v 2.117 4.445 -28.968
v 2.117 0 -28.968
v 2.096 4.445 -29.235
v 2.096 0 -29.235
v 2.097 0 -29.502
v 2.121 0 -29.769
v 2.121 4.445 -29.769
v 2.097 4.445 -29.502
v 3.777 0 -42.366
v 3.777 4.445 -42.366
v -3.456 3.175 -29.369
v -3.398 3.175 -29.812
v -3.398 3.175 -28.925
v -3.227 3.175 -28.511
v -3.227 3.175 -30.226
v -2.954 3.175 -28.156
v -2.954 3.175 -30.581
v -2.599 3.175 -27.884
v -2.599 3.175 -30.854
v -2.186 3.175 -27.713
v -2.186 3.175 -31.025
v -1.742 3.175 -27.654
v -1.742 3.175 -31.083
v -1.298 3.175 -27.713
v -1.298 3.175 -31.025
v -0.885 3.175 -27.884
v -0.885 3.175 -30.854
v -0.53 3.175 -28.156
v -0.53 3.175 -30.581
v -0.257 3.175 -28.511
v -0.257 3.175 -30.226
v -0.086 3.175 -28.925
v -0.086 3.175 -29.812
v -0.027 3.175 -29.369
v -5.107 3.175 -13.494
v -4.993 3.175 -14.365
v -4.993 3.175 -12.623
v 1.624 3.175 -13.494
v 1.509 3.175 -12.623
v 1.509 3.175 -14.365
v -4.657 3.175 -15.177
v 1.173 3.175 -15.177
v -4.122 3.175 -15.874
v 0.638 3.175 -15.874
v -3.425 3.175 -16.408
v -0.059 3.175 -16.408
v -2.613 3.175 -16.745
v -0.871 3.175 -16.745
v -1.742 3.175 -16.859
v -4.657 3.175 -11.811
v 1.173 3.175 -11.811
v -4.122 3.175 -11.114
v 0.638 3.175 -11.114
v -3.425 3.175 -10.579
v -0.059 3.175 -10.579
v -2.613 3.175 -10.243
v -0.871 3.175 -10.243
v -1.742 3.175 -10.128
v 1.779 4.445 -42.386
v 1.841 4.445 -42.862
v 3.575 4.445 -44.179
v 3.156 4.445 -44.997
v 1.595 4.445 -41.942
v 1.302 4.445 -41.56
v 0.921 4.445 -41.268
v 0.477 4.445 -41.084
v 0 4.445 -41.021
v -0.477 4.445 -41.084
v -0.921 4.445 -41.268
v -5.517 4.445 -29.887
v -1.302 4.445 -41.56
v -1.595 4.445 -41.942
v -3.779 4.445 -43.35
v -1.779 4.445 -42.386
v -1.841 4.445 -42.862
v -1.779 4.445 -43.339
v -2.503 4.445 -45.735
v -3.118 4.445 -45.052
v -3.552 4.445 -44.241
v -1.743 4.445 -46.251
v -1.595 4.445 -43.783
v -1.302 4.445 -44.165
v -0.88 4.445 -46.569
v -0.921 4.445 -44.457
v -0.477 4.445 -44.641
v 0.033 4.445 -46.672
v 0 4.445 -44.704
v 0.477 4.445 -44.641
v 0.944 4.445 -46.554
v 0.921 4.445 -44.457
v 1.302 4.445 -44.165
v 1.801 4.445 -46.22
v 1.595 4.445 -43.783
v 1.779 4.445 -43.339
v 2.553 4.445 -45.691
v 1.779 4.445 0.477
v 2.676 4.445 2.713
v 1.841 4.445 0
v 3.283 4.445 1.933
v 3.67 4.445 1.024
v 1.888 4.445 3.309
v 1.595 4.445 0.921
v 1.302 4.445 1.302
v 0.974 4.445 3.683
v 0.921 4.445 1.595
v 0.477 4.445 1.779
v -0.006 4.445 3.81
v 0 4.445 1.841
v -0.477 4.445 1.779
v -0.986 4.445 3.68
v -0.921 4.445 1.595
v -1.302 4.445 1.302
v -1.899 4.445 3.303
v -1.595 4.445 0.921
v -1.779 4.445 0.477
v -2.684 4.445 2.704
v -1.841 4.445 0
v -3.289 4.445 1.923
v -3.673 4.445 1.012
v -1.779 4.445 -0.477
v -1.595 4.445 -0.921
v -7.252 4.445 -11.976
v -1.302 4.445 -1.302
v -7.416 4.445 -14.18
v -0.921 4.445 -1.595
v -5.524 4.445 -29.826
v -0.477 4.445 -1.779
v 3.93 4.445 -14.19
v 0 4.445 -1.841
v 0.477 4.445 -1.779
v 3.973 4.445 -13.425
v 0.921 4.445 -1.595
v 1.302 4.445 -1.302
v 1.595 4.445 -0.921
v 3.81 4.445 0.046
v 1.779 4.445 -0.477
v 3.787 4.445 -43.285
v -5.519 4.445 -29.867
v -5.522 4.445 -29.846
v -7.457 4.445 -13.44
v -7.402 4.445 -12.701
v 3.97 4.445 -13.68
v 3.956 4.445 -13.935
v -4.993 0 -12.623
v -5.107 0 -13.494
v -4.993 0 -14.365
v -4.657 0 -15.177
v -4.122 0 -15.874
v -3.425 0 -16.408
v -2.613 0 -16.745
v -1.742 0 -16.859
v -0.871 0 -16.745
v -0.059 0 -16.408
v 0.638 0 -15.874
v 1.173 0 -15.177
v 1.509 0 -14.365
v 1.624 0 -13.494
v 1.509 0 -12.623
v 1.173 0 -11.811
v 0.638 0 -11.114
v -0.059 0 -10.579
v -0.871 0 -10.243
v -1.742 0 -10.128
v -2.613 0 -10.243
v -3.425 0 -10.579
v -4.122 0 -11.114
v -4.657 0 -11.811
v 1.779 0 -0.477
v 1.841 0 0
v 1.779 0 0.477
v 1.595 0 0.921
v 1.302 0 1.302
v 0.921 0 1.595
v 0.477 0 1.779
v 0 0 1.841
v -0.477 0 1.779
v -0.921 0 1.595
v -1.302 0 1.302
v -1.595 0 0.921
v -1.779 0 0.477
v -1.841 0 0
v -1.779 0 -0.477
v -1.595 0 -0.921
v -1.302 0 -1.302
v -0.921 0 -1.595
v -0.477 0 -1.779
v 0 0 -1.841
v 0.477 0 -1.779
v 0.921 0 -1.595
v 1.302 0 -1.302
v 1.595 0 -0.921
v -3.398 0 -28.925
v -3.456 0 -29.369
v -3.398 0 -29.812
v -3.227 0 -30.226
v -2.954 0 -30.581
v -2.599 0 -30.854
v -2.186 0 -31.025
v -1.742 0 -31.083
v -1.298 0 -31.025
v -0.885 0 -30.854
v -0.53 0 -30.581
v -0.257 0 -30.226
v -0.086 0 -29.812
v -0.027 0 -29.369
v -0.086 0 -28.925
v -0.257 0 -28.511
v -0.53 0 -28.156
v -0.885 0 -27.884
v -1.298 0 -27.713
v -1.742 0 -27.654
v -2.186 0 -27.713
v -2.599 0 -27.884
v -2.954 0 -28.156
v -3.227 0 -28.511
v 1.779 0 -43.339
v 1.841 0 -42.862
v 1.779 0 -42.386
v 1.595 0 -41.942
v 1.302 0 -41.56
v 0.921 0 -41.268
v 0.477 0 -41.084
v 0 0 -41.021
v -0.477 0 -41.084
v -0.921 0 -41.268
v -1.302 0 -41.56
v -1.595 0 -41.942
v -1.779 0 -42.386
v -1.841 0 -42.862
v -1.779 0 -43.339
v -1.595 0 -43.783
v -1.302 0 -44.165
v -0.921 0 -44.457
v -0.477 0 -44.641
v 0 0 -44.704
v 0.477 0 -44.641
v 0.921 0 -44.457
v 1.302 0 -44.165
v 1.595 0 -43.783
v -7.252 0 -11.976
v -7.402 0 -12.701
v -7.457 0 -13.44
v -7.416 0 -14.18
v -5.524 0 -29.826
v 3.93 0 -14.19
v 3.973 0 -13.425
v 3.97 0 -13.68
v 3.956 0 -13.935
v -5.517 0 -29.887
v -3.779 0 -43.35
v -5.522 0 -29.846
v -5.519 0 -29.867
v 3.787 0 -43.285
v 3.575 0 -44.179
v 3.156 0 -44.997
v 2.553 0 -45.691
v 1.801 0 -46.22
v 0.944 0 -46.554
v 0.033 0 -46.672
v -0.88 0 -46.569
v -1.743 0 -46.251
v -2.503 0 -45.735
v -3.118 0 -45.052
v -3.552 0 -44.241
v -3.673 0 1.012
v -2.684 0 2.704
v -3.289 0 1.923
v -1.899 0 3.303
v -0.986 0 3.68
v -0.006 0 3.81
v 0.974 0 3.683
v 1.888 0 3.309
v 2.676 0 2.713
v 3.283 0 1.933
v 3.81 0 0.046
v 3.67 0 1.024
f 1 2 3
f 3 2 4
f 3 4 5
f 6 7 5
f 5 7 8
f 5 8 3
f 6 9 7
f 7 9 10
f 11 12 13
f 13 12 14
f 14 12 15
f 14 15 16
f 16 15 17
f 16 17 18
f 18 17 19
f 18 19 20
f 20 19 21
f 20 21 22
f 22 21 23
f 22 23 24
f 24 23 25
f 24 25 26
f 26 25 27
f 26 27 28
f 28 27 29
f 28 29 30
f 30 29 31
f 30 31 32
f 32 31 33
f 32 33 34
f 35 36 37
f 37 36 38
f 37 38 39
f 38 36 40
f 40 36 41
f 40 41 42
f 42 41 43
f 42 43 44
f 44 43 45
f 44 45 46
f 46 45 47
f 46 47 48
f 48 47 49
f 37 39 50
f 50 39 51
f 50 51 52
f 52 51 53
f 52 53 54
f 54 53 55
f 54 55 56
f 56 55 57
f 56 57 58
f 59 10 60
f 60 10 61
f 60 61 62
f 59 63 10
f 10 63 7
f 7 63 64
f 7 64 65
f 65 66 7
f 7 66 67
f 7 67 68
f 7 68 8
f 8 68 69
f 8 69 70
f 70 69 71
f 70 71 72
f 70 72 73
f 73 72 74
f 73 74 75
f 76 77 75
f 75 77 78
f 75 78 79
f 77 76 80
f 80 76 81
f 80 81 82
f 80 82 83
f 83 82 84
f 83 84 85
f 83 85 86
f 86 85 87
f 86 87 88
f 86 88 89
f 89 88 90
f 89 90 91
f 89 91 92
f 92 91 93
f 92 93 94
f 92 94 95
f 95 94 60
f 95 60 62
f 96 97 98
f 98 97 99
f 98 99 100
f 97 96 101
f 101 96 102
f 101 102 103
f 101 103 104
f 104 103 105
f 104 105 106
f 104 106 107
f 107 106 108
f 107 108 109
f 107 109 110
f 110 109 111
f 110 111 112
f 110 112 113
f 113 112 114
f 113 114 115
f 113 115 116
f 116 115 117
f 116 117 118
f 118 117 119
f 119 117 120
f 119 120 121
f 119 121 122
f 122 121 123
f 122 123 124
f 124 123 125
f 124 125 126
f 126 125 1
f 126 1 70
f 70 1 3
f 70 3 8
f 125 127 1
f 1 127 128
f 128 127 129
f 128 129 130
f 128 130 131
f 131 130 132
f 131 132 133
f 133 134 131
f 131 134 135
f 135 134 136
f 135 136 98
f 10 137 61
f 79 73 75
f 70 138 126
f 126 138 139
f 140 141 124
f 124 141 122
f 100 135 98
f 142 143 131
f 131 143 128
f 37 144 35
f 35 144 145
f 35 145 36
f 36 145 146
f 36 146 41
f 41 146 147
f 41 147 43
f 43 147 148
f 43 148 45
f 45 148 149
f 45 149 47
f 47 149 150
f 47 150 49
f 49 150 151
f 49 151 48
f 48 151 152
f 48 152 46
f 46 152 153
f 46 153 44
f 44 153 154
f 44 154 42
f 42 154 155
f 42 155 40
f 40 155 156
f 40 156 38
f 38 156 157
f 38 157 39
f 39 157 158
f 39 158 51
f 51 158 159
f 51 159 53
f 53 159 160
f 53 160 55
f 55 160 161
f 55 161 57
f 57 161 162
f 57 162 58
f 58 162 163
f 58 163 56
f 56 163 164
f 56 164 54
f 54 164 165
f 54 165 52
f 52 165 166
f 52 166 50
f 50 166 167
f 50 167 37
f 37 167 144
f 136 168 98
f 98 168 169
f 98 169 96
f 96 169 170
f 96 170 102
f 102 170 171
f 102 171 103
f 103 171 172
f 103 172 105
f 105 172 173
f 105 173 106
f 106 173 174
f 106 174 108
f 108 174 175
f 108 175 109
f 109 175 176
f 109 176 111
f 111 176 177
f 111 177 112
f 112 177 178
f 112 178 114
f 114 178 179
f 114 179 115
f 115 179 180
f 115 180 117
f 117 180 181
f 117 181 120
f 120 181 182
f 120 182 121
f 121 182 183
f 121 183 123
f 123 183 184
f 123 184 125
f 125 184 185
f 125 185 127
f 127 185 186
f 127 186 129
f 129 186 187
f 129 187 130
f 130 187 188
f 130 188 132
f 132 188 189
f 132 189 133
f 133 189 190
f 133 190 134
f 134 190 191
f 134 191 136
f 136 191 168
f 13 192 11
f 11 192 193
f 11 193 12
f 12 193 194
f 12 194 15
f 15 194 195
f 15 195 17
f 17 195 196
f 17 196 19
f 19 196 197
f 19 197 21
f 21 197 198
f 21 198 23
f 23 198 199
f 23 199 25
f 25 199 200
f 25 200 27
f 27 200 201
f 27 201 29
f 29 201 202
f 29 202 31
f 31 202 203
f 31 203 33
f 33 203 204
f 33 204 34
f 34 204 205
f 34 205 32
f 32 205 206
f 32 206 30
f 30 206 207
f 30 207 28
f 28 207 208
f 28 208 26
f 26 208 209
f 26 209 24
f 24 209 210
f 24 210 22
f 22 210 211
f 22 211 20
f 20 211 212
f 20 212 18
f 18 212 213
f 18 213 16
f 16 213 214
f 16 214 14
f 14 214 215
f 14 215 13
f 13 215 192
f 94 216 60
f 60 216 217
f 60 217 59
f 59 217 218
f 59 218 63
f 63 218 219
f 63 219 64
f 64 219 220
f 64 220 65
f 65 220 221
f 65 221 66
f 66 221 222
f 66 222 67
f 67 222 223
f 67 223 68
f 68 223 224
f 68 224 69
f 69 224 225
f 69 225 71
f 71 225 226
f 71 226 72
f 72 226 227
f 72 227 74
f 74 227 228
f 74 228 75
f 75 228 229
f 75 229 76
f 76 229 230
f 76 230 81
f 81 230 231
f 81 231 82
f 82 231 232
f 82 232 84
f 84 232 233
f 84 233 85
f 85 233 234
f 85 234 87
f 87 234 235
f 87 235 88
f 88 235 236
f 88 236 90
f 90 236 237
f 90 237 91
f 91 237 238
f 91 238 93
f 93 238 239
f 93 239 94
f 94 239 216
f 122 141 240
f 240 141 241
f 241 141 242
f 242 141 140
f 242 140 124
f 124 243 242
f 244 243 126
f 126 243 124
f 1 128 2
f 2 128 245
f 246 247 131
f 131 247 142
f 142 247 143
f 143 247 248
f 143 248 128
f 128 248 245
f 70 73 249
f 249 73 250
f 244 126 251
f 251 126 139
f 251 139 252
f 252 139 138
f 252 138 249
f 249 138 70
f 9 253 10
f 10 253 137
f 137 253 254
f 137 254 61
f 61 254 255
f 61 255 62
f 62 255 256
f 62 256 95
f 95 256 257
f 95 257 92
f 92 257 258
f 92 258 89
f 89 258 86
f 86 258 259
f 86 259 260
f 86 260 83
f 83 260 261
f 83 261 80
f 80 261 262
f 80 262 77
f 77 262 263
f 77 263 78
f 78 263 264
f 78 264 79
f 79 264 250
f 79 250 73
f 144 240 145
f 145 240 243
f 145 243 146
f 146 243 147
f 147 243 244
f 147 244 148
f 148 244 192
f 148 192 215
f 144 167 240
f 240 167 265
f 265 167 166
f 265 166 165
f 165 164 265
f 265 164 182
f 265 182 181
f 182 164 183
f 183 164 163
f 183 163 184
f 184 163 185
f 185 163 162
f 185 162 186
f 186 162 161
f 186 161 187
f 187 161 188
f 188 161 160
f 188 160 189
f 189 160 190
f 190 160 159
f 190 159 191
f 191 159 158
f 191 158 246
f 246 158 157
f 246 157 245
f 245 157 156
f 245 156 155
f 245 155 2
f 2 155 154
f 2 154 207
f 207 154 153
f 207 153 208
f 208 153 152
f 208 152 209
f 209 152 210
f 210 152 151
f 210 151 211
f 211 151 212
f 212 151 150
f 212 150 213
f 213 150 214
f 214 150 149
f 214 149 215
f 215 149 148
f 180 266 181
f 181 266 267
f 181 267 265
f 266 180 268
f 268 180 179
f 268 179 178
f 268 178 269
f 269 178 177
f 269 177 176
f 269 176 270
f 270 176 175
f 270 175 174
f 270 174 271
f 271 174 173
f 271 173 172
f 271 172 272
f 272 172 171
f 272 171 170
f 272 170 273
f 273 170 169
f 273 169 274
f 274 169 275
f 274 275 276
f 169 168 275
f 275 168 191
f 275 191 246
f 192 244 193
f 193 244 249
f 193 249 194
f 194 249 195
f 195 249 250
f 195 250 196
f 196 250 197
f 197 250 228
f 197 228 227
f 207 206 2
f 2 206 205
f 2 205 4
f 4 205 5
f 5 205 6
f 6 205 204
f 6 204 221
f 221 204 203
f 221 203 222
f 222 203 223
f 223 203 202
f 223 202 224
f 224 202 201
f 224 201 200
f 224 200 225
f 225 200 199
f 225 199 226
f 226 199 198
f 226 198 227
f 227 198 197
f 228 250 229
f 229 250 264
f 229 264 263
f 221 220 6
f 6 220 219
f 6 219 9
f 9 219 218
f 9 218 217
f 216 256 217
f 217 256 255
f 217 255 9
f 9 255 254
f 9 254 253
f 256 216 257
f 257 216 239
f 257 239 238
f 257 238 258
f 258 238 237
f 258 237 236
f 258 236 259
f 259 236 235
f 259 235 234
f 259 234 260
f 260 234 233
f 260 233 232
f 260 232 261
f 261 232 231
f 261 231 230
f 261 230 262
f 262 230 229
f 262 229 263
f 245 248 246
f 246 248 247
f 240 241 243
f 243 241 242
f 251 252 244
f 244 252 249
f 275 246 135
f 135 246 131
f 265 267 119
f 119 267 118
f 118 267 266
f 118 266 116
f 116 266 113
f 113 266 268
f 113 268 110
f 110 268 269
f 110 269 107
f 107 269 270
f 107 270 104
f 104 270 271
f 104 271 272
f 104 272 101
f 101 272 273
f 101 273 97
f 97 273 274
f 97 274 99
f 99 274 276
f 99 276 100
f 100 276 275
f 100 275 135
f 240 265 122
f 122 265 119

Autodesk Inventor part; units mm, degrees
ref_plane "YZ Plane" through (0, 0, 0) normal (1, 0, 0) x (0, 1, 0)
ref_plane "XZ Plane" through (0, 0, 0) normal (0, 1, 0) x (-1, 0, 0)
ref_plane "XY Plane" through (0, 0, 0) normal (0, 0, 1) x (1, 0, 0)
sketch "Sketch1" plane through (0, 0, 0) normal (0, 1, 0) x (-1, 0, 0)
  circle A0 centre (0, 0) radius 1.8415
  circle A1 centre (0, -42.8625) radius 1.8415
  line L0 (0, 0) -> (0, -42.8625) construction
  circle A2 centre (1.742, -13.4938) radius 3.3655
  circle A3 centre (1.742, -29.3687) radius 1.7145
  line L1 (1.742, -29.3687) -> (1.742, -13.4938) construction
  circle A4 centre (0, 0) radius 3.81
  circle A5 centre (0, -42.8625) radius 3.81
  circle A6 centre (1.742, -13.4938) radius 5.715
  circle A7 centre (1.742, -29.3687) radius 3.81
  line L2 (7.2517, -11.9756) -> (3.6731, 1.0121)
  line L3 (-3.8097, 0.0461) -> (-3.9726, -13.4247)
  line L4 (-3.9305, -14.1898) -> (-2.068, -29.3687)
  line L5 (7.4157, -14.1796) -> (5.5245, -29.826)
  line L6 (3.7786, -43.3503) -> (5.5245, -29.826)
  line L7 (-3.7775, -42.3657) -> (-2.068, -29.3687)
  point P0 (-37.12, -21.4312)
  point P1 (0, -21.4312)
  point P2 (1.742, -21.4312)
  dimension "d0" = 3.683
  dimension "d1" = 42.8625
  dimension "d2" = 42.8625
  dimension "d3" = 6.731
  dimension "d4" = 3.429
  dimension "d5" = 15.875
  dimension "d6" = 38.862
  dimension "d7" = 7.62
  dimension "d8" = 11.43
  dimension "d9" = 7.62
extrude "Extrusion1" add sketch "Sketch1" along normal blind 3.175
sketch "Sketch2" plane through (0, 3.175, 0) normal (0, 1, 0) x (1, 0, 0)
  circle A0 centre (-1.742, 13.4938) radius 3.3655 projected
  circle A1 centre (0, 0) radius 1.8415 projected
  circle A2 centre (-1.742, 29.3687) radius 1.7145 projected
  circle A3 centre (0, 42.8625) radius 1.8415 projected
  arc A4 (3.7775, 42.3657) -> (-3.7786, 43.3503) centre (0, 42.8625) ccw projected
  line L0 (-3.7786, 43.3503) -> (-5.5166, 29.8871) projected
  line L1 (-5.5245, 29.826) -> (-7.4157, 14.1796) projected
  arc A5 (-7.4157, 14.1796) -> (-7.2517, 11.9756) centre (-1.742, 13.4938) ccw projected
  line L2 (-7.2517, 11.9756) -> (-3.6731, -1.0121) projected
  arc A6 (-3.6731, -1.0121) -> (3.8097, -0.0461) centre (0, 0) ccw projected
  line L3 (3.8097, -0.0461) -> (3.9726, 13.4247) projected
  arc A7 (3.9726, 13.4247) -> (3.9305, 14.1898) centre (-1.742, 13.4938) ccw projected
  line L4 (3.9305, 14.1898) -> (2.068, 29.3687) projected
  line L5 (2.068, 29.3687) -> (3.7775, 42.3657) projected
  arc A8 (-5.5166, 29.8871) -> (-5.5245, 29.826) centre (-1.742, 29.3687) ccw projected
extrude "Extrusion2" add sketch "Sketch2" along normal blind 1.27 contours A0 | A2 | L5 L4 A7 L3 A6 L2 A5 L1 A8 L0 A4
fillet "Fillet1" radius 3.175 1 edges at (2.068, 2.2225, -29.3687)
properties part number "CarrageRodEndMount" material "ABS Plastic"
